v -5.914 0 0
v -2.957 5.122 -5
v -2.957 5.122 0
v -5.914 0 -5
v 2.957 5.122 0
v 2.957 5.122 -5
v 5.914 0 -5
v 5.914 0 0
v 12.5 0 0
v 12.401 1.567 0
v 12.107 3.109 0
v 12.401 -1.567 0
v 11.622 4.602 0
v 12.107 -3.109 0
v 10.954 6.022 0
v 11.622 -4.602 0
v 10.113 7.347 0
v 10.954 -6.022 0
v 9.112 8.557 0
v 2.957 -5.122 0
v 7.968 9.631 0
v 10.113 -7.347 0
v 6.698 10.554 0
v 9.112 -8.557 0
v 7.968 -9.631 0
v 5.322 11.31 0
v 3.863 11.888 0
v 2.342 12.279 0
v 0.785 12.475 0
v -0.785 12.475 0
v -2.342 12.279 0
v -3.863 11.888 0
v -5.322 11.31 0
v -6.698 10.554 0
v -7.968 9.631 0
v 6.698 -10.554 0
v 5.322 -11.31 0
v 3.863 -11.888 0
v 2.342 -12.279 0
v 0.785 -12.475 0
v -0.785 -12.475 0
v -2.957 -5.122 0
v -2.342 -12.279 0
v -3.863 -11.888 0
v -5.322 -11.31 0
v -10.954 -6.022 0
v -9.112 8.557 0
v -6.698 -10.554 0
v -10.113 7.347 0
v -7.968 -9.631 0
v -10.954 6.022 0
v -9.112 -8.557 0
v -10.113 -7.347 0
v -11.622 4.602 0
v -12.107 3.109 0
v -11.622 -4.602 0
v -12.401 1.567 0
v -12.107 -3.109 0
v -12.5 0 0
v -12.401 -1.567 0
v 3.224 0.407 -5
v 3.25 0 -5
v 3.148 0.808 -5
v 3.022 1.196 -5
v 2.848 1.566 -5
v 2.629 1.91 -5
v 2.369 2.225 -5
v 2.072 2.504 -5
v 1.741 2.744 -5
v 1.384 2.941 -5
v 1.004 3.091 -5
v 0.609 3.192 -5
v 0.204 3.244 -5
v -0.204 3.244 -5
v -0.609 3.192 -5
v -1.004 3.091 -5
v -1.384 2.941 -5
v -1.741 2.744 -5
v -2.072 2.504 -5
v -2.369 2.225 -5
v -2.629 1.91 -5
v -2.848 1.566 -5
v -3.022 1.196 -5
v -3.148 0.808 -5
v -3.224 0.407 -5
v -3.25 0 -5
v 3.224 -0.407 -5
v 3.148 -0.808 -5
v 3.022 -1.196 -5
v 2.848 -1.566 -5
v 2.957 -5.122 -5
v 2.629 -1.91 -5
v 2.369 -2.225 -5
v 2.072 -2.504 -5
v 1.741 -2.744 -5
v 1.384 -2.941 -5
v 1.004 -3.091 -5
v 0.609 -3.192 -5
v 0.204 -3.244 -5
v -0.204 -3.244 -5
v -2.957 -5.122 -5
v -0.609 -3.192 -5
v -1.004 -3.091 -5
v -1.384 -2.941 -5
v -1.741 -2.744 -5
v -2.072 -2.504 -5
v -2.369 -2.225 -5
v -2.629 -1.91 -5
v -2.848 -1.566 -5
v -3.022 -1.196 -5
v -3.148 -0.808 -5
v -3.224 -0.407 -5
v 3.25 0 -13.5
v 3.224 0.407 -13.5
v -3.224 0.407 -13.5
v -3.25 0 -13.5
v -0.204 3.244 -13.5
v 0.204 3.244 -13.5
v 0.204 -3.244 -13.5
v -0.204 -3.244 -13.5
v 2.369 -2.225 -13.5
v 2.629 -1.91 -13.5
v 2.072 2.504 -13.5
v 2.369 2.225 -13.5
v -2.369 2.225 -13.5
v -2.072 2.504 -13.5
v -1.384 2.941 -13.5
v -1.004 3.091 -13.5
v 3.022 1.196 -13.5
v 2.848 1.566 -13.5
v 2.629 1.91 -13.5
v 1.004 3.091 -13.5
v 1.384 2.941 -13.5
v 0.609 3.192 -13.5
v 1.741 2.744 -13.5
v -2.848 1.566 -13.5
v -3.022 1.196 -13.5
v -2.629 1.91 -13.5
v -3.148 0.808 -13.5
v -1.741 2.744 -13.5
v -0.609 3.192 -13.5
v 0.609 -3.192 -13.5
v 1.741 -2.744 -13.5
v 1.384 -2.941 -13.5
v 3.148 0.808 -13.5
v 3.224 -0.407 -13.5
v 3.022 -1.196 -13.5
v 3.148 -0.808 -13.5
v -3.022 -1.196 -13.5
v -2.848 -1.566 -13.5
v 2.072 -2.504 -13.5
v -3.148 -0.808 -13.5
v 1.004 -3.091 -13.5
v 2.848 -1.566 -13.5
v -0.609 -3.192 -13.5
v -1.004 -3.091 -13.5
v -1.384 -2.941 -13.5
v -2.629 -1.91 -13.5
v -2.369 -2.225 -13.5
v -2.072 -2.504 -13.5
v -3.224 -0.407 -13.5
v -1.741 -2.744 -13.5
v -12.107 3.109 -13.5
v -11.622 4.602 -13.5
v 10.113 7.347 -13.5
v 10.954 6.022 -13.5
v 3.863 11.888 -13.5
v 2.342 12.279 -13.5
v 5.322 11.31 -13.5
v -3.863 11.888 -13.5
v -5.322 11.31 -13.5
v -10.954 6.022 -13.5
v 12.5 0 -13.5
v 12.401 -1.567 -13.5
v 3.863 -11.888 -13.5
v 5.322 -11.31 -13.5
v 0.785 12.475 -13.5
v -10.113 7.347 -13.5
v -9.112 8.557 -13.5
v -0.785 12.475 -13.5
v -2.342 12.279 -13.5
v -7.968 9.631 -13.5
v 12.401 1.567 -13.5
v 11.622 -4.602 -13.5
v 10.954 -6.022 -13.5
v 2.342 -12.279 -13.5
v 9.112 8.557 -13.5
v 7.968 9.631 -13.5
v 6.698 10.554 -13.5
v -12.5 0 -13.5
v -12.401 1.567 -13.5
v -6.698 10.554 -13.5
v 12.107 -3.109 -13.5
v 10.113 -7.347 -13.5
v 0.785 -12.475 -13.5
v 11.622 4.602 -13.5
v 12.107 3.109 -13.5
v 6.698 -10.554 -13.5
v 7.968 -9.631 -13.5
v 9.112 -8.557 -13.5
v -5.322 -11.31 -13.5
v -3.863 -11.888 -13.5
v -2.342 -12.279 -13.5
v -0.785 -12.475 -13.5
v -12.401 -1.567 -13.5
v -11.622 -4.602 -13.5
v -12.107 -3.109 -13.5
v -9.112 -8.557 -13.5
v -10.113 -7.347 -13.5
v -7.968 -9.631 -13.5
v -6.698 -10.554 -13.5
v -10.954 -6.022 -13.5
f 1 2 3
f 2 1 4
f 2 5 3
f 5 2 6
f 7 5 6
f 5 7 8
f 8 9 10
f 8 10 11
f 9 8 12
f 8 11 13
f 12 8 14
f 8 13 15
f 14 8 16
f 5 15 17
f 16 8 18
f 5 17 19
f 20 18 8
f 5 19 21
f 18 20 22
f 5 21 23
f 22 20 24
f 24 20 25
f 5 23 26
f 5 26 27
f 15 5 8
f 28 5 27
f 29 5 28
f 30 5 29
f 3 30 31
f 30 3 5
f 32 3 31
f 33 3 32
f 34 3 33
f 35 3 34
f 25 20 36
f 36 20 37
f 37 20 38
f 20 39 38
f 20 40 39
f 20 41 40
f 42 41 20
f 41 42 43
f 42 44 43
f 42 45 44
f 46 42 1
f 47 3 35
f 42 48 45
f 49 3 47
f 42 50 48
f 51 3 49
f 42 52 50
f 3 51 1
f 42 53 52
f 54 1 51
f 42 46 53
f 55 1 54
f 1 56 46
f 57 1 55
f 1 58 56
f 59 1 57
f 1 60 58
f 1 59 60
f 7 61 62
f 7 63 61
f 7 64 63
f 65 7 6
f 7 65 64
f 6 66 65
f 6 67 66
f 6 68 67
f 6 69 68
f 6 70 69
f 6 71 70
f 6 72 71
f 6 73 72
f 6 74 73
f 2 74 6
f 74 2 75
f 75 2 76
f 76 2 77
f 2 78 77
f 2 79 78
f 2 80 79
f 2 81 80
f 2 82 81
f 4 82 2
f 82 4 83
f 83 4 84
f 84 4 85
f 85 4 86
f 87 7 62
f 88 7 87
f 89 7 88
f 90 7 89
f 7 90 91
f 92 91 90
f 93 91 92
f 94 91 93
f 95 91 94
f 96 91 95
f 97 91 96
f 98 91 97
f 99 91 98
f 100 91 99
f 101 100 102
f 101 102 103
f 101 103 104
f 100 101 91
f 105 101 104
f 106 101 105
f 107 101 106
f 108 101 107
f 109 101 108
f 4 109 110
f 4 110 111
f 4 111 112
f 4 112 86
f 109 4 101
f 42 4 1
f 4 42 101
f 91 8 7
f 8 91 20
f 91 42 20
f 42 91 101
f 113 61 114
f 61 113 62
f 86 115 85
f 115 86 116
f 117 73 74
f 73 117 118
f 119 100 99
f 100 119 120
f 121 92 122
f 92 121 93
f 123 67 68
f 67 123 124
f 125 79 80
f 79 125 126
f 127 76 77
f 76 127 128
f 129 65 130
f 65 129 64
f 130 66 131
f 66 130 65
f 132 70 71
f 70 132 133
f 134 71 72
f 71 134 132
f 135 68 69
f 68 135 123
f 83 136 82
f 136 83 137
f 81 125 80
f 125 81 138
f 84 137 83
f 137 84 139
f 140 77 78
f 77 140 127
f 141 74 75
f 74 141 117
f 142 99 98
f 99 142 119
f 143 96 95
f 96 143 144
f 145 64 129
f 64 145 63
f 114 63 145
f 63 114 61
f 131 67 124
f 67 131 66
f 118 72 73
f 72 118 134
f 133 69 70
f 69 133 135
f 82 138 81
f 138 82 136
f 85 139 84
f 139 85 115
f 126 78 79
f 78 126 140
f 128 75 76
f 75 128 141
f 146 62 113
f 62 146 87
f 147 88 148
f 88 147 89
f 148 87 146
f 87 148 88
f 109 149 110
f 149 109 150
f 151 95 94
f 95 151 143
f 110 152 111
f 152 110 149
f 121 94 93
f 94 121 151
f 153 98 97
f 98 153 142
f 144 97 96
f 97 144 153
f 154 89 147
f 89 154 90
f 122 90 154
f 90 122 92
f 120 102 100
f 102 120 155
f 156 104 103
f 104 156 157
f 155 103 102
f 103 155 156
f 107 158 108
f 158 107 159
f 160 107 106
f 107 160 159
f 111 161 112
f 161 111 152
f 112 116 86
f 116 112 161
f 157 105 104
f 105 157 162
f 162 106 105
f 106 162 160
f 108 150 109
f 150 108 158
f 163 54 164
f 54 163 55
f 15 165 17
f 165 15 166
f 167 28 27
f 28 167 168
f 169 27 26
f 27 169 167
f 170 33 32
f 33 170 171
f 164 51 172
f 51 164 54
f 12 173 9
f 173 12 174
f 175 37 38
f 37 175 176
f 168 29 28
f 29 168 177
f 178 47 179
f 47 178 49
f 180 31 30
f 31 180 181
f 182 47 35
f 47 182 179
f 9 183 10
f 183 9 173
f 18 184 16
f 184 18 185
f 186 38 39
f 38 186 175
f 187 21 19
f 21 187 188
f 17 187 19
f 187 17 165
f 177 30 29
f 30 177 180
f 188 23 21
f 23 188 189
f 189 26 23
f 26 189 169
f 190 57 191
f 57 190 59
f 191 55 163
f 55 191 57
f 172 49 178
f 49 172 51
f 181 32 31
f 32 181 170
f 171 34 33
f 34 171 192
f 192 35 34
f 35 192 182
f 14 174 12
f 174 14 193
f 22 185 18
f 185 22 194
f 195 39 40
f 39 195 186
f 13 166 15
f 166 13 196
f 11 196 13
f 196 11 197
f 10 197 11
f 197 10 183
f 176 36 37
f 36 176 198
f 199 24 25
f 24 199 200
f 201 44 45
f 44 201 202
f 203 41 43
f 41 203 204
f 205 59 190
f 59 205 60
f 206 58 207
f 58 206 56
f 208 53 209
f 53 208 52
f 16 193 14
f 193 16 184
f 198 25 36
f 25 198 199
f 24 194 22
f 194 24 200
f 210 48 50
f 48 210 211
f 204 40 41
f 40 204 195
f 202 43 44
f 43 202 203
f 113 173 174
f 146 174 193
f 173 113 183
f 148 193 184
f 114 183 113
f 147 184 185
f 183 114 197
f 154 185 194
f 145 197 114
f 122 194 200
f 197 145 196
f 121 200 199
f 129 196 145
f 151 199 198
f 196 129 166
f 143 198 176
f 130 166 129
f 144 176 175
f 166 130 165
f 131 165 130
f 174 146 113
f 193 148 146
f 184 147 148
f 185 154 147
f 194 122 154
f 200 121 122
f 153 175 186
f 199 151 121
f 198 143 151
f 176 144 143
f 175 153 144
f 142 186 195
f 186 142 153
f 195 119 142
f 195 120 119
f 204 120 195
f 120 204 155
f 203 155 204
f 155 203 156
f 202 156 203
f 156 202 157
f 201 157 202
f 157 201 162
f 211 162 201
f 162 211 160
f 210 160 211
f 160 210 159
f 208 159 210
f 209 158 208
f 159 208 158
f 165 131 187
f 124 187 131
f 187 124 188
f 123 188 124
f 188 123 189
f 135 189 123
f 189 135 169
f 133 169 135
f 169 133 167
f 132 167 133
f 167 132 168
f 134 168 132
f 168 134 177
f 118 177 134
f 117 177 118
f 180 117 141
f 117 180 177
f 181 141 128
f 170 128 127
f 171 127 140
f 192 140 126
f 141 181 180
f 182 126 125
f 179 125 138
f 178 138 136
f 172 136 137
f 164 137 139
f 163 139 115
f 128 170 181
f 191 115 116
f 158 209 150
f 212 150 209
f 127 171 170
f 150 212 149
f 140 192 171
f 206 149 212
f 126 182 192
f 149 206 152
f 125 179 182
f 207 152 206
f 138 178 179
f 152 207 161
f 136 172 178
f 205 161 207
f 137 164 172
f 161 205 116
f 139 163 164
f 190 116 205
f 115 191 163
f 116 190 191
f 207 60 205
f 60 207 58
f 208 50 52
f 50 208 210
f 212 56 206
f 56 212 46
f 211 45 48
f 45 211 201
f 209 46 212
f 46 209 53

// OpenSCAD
$fn = 50;

difference() {
	union() {
		translate(v = [0, 0, -13.5]) {
			cylinder(h = 13.5, r = 12.5);
		}
	}
	union() {
		translate(v = [0, 0, 0]) {
			rotate(a = [0, 0, 0]) {
				difference() {
					union() {
						translate(v = [0, 0, -5]) {
							linear_extrude(height = 5) {
								polygon(points = [[5.914249999999999, 0.0], [2.957125, 5.1218907443321156], [-2.9571249999999982, 5.1218907443321156], [-5.914249999999999, 7.242867331857232e-16], [-2.9571250000000022, -5.121890744332115], [2.9571249999999956, -5.121890744332118]]);
							}
						}
					}
					union();
				}
			}
		}
		#translate(v = [0, 0, -100.0]) {
			cylinder(h = 200, r = 3.25);
		}
	}
}
